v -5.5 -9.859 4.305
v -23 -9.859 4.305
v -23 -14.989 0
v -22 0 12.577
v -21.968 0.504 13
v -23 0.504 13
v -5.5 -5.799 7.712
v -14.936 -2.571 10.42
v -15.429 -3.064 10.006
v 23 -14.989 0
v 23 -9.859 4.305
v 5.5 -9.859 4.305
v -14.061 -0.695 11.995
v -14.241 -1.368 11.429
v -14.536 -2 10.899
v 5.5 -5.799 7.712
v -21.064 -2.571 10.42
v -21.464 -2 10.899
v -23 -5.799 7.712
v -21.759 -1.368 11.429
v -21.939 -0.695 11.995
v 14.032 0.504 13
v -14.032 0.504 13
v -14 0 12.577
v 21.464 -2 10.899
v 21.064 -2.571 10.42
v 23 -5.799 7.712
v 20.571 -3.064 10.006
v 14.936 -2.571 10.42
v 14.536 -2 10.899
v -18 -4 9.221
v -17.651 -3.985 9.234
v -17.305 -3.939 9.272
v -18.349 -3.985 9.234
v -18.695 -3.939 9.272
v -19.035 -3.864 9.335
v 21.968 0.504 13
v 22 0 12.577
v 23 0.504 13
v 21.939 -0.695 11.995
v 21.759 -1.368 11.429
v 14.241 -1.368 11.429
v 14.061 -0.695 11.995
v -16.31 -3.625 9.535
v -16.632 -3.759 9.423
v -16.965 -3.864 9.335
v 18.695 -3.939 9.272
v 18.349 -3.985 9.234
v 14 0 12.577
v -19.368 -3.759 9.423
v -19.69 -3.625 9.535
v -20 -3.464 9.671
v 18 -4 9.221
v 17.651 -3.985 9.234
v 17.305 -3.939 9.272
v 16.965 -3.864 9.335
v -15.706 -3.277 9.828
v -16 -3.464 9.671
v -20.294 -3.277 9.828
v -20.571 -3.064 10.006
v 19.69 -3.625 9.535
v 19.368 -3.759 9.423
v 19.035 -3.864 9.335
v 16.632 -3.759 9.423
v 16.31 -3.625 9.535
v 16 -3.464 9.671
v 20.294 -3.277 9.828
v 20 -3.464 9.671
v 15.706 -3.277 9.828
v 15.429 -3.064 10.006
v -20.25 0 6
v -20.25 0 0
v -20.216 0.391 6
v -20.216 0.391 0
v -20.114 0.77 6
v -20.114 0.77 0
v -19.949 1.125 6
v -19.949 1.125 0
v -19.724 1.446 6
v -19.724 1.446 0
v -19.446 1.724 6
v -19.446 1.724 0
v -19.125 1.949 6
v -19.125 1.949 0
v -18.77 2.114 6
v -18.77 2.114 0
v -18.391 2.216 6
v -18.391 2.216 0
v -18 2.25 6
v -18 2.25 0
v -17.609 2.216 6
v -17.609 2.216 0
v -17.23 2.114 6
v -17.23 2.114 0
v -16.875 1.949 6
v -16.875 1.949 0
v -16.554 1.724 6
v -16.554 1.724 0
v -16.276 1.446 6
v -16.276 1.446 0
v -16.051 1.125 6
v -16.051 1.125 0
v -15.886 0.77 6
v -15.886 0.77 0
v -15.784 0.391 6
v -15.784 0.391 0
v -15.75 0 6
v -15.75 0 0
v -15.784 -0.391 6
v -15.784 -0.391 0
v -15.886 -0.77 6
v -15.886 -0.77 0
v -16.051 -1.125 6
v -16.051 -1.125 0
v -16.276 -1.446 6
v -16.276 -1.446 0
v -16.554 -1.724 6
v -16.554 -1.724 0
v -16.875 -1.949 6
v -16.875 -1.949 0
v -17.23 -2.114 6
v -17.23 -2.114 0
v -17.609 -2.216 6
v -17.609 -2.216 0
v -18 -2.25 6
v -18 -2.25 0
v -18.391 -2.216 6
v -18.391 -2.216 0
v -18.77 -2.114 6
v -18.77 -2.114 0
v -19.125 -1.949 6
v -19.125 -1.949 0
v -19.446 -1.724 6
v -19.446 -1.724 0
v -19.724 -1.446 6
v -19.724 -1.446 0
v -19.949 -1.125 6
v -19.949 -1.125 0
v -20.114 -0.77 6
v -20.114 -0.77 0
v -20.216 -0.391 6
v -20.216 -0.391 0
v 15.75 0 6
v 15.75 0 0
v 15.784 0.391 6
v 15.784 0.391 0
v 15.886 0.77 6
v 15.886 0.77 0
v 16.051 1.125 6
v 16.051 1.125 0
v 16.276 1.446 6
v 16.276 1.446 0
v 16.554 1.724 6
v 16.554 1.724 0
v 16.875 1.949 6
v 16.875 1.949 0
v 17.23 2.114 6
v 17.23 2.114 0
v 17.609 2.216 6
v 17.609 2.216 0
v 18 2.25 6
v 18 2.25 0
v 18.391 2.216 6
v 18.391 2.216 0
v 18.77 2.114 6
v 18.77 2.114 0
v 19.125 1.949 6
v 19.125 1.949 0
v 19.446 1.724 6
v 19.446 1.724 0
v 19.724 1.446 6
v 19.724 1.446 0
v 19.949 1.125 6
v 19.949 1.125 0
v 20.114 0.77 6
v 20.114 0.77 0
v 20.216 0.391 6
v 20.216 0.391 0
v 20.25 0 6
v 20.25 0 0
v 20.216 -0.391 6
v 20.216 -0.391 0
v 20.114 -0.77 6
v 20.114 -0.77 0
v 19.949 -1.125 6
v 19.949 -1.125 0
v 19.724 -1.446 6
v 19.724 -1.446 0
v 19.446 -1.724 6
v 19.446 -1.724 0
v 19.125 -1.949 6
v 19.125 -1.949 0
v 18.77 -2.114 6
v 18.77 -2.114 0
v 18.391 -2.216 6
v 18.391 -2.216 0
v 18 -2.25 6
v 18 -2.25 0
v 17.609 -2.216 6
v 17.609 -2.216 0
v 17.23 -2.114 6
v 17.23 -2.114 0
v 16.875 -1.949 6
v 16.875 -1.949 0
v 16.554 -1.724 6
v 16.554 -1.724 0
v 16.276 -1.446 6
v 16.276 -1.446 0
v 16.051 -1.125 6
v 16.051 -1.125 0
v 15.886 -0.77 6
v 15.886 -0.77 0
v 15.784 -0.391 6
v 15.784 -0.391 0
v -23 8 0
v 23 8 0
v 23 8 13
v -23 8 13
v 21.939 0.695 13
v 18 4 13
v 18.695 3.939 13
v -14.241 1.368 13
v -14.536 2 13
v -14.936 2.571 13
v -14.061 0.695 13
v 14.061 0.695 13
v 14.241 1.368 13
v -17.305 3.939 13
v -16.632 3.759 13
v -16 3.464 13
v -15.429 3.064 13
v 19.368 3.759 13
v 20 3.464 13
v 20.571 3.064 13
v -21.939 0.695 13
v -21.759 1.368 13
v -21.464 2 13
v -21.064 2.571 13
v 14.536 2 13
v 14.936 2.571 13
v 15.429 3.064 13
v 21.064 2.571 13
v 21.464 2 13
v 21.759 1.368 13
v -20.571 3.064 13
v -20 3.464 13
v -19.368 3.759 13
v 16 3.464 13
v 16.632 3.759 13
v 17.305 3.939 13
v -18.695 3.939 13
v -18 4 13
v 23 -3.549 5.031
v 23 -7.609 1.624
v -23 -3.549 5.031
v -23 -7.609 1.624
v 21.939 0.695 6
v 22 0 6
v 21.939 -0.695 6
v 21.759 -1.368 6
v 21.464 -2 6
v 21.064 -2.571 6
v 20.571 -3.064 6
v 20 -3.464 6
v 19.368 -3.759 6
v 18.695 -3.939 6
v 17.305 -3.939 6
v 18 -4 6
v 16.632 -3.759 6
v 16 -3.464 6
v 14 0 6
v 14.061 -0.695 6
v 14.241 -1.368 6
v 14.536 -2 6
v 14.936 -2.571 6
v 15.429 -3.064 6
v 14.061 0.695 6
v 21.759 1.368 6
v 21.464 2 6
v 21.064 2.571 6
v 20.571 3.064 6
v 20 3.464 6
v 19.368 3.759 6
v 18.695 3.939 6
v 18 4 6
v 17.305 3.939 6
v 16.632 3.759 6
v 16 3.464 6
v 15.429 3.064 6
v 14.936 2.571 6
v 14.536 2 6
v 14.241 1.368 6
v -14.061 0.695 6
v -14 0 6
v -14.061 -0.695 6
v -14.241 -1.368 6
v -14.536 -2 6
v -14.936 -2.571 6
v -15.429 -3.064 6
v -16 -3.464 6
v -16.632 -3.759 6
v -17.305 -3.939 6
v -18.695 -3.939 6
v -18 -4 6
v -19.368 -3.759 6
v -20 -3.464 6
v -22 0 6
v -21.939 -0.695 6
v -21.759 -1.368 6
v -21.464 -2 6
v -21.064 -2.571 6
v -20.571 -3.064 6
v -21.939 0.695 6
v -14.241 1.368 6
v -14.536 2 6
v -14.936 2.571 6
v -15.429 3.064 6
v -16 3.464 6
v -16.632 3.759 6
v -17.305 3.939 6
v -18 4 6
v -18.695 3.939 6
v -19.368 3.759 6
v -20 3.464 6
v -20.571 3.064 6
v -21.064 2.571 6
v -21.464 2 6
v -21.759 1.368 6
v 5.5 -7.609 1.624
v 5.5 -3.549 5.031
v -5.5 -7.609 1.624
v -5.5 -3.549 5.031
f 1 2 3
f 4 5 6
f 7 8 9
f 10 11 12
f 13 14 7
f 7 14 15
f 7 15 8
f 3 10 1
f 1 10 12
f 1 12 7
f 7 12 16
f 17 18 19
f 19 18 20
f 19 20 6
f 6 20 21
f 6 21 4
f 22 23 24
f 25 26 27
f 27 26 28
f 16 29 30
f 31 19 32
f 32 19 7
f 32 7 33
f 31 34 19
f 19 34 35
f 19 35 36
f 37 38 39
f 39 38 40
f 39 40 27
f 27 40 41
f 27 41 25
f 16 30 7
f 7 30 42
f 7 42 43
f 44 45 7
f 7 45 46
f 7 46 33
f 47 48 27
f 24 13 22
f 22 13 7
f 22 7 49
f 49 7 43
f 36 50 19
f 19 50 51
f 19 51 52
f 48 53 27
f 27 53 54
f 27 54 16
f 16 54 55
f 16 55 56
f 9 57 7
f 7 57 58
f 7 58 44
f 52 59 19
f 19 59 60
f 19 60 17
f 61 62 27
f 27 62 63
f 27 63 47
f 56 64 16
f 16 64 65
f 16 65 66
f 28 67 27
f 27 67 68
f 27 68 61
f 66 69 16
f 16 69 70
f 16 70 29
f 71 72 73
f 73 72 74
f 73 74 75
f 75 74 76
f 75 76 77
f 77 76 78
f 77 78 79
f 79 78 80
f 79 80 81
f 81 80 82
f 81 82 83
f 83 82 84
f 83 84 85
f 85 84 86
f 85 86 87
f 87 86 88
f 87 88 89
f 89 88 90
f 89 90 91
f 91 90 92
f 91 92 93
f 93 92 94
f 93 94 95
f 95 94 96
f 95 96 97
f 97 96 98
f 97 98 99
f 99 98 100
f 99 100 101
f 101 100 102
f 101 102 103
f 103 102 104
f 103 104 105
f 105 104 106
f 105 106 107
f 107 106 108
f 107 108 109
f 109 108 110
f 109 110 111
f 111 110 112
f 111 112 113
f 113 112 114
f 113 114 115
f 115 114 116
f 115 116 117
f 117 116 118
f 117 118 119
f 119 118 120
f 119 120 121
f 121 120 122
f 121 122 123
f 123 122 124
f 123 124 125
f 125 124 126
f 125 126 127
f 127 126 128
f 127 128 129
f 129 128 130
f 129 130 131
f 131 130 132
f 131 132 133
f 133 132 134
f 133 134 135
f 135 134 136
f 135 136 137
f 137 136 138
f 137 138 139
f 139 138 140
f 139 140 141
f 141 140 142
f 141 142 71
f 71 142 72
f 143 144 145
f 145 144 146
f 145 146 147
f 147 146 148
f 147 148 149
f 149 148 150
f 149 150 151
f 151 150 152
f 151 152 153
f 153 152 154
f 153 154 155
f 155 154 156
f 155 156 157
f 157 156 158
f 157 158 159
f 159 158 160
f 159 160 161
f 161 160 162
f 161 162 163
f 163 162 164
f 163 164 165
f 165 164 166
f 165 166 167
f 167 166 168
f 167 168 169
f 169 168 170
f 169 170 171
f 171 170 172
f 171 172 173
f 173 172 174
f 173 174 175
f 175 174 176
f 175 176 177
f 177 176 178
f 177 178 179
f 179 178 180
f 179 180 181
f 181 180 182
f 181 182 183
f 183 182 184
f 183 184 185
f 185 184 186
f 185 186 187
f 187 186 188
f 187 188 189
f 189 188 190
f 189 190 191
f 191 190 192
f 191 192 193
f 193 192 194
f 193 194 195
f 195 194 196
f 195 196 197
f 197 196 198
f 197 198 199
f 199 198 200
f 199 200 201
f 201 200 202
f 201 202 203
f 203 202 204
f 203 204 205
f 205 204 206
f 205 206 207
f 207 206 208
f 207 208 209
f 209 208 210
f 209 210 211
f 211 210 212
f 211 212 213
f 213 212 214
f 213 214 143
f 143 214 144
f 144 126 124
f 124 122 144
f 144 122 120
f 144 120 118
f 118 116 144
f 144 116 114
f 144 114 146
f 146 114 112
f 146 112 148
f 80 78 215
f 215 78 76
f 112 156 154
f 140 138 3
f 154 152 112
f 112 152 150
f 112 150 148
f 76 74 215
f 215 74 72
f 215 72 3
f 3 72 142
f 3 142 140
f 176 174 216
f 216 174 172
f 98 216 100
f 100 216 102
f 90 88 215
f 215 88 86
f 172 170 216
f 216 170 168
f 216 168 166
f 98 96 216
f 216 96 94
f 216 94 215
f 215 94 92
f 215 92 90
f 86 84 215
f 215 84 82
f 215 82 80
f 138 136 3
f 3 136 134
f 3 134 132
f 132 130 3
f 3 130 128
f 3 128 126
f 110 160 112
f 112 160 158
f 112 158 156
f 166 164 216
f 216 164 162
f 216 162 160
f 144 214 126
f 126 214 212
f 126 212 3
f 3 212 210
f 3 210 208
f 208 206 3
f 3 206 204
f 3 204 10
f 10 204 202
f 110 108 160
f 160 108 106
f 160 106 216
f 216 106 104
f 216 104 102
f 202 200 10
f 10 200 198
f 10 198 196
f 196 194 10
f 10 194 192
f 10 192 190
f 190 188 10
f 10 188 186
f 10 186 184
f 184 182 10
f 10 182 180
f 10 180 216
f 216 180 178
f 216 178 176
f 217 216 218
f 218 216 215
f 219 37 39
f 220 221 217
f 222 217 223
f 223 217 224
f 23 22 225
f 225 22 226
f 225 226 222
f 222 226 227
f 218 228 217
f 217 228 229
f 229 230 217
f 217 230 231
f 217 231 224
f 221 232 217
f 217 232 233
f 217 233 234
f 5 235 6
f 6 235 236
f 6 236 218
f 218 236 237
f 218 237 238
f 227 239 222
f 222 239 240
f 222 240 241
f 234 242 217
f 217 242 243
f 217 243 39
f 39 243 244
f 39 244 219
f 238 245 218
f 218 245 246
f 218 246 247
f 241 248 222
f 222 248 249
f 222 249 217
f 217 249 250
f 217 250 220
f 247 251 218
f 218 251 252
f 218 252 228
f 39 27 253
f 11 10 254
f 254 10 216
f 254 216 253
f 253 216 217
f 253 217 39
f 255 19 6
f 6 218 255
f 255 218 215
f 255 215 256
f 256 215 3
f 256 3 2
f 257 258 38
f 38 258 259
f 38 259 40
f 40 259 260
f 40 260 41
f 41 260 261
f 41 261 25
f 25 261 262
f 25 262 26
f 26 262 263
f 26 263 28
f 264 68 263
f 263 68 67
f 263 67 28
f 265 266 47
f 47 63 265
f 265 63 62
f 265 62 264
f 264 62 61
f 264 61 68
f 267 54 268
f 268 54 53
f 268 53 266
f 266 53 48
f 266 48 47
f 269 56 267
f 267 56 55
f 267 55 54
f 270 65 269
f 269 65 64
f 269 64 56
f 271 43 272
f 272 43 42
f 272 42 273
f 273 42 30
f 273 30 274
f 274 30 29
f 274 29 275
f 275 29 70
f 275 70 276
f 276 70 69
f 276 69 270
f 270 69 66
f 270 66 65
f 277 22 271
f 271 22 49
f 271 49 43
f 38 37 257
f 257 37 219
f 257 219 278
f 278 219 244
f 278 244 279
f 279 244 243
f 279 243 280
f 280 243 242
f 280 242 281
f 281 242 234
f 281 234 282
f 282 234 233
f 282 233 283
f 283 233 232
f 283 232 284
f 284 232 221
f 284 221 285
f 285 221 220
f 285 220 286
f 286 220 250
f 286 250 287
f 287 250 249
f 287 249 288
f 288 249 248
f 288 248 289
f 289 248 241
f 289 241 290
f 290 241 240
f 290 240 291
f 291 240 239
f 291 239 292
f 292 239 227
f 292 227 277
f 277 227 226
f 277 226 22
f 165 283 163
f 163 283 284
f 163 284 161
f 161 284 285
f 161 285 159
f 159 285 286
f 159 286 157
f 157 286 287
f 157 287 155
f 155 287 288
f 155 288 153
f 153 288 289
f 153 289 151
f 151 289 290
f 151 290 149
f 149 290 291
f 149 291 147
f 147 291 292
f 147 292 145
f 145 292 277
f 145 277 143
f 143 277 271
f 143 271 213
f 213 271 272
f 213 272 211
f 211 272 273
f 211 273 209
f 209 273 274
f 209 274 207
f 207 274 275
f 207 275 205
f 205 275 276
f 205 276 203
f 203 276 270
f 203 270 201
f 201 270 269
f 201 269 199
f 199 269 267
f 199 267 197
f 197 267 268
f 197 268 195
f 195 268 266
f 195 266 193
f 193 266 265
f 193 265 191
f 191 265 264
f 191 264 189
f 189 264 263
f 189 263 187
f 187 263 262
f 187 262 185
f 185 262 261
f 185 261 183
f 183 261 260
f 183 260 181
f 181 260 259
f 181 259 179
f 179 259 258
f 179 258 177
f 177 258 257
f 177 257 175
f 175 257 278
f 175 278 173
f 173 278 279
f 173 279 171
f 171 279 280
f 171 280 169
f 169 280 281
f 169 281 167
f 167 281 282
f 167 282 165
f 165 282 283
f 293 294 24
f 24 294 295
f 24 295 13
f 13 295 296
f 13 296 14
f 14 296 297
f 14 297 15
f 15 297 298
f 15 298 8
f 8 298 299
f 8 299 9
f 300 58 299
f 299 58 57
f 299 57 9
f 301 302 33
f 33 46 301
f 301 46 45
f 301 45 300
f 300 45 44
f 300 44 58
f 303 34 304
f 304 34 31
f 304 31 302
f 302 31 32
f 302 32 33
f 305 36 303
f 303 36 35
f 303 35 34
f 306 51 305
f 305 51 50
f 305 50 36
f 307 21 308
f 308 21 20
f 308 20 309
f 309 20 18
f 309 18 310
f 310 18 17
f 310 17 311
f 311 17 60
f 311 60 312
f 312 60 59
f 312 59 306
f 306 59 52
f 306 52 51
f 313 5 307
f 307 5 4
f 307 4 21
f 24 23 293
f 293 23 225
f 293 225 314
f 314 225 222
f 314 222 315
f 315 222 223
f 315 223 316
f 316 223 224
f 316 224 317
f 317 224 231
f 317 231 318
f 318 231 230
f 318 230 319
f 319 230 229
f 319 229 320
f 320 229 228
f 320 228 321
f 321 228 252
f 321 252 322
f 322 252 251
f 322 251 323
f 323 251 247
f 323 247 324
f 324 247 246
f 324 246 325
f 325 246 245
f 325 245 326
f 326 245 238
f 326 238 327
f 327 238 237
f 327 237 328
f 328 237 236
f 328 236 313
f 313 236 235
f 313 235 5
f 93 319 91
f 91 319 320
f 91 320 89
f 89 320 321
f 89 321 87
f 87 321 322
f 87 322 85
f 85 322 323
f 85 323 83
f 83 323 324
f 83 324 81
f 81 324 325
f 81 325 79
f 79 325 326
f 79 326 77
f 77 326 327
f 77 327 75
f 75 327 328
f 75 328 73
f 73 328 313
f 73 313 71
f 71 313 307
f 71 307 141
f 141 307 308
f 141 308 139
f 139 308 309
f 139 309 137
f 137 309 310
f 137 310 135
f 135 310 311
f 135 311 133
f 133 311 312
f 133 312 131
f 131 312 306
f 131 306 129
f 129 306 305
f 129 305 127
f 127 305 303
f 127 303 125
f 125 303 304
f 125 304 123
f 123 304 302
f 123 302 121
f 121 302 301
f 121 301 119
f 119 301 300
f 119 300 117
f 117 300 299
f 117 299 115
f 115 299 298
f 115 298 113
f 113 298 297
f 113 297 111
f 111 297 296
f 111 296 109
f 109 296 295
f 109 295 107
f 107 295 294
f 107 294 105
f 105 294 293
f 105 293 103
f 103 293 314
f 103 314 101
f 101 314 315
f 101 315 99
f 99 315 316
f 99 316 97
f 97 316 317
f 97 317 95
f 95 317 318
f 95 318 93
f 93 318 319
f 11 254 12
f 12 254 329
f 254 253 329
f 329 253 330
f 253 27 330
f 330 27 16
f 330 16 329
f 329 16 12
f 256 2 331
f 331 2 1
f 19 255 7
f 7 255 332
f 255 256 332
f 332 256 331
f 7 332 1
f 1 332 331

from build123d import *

# Parameters (mm, degrees)
EX_BODY_DEPTH       = 46
SK_SKINBOLTS_R      = 2.25
CUT_SKINBOLTS_DEPTH = 13
SK_BOLTHEADS_R      = 4
CUT_BOLTHEADS_DEPTH = 7
CUT_PLUGL_DEPTH     = 17.5
CUT_PLUGR_DEPTH     = 17.5


with BuildPart() as part:
    # SK_Body → EX_Body (new body)
    with BuildSketch(Plane(origin=(-23, 0, 0), x_dir=(0, 0, -1), z_dir=(1, 0, 0))):
        Polygon((0, -14.989146791), (-13, 0.503649913), (-13, 8), (0, 8), align=None)
    extrude(amount=EX_BODY_DEPTH)

    # SK_SkinBolts → CUT_SkinBolts (cut)
    with BuildSketch(Plane.XY):
        with Locations((18, 0)):
            Circle(SK_SKINBOLTS_R)
        with Locations((-18, 0)):
            Circle(SK_SKINBOLTS_R)
    extrude(amount=CUT_SKINBOLTS_DEPTH, mode=Mode.SUBTRACT)

    # SK_BoltHeads → CUT_BoltHeads (cut)
    with BuildSketch(Plane.XY.offset(6)):
        with Locations((18, 0)):
            Circle(SK_BOLTHEADS_R)
        with Locations((-18, 0)):
            Circle(SK_BOLTHEADS_R)
    extrude(amount=CUT_BOLTHEADS_DEPTH, mode=Mode.SUBTRACT)

    # SK_PlugL → CUT_PlugL (cut)
    with BuildSketch(Plane(origin=(5.5, 0, 0), x_dir=(0, 0, -1), z_dir=(1, 0, 0))):
        Polygon((-4.304897282, -9.858769989), (-7.711671614, -5.798734441), (-5.030516063, -3.548977807), (-1.623741731, -7.609013355), align=None)
    extrude(amount=CUT_PLUGL_DEPTH, mode=Mode.SUBTRACT)

    # SK_PlugR → CUT_PlugR (cut)
    with BuildSketch(Plane(origin=(-5.5, 0, 0), x_dir=(0, 0, -1), z_dir=(1, 0, 0))):
        Polygon((-4.304897282, -9.858769989), (-7.711671614, -5.798734441), (-5.030516063, -3.548977807), (-1.623741731, -7.609013355), align=None)
    extrude(amount=-CUT_PLUGR_DEPTH, mode=Mode.SUBTRACT)


solid = part.part
